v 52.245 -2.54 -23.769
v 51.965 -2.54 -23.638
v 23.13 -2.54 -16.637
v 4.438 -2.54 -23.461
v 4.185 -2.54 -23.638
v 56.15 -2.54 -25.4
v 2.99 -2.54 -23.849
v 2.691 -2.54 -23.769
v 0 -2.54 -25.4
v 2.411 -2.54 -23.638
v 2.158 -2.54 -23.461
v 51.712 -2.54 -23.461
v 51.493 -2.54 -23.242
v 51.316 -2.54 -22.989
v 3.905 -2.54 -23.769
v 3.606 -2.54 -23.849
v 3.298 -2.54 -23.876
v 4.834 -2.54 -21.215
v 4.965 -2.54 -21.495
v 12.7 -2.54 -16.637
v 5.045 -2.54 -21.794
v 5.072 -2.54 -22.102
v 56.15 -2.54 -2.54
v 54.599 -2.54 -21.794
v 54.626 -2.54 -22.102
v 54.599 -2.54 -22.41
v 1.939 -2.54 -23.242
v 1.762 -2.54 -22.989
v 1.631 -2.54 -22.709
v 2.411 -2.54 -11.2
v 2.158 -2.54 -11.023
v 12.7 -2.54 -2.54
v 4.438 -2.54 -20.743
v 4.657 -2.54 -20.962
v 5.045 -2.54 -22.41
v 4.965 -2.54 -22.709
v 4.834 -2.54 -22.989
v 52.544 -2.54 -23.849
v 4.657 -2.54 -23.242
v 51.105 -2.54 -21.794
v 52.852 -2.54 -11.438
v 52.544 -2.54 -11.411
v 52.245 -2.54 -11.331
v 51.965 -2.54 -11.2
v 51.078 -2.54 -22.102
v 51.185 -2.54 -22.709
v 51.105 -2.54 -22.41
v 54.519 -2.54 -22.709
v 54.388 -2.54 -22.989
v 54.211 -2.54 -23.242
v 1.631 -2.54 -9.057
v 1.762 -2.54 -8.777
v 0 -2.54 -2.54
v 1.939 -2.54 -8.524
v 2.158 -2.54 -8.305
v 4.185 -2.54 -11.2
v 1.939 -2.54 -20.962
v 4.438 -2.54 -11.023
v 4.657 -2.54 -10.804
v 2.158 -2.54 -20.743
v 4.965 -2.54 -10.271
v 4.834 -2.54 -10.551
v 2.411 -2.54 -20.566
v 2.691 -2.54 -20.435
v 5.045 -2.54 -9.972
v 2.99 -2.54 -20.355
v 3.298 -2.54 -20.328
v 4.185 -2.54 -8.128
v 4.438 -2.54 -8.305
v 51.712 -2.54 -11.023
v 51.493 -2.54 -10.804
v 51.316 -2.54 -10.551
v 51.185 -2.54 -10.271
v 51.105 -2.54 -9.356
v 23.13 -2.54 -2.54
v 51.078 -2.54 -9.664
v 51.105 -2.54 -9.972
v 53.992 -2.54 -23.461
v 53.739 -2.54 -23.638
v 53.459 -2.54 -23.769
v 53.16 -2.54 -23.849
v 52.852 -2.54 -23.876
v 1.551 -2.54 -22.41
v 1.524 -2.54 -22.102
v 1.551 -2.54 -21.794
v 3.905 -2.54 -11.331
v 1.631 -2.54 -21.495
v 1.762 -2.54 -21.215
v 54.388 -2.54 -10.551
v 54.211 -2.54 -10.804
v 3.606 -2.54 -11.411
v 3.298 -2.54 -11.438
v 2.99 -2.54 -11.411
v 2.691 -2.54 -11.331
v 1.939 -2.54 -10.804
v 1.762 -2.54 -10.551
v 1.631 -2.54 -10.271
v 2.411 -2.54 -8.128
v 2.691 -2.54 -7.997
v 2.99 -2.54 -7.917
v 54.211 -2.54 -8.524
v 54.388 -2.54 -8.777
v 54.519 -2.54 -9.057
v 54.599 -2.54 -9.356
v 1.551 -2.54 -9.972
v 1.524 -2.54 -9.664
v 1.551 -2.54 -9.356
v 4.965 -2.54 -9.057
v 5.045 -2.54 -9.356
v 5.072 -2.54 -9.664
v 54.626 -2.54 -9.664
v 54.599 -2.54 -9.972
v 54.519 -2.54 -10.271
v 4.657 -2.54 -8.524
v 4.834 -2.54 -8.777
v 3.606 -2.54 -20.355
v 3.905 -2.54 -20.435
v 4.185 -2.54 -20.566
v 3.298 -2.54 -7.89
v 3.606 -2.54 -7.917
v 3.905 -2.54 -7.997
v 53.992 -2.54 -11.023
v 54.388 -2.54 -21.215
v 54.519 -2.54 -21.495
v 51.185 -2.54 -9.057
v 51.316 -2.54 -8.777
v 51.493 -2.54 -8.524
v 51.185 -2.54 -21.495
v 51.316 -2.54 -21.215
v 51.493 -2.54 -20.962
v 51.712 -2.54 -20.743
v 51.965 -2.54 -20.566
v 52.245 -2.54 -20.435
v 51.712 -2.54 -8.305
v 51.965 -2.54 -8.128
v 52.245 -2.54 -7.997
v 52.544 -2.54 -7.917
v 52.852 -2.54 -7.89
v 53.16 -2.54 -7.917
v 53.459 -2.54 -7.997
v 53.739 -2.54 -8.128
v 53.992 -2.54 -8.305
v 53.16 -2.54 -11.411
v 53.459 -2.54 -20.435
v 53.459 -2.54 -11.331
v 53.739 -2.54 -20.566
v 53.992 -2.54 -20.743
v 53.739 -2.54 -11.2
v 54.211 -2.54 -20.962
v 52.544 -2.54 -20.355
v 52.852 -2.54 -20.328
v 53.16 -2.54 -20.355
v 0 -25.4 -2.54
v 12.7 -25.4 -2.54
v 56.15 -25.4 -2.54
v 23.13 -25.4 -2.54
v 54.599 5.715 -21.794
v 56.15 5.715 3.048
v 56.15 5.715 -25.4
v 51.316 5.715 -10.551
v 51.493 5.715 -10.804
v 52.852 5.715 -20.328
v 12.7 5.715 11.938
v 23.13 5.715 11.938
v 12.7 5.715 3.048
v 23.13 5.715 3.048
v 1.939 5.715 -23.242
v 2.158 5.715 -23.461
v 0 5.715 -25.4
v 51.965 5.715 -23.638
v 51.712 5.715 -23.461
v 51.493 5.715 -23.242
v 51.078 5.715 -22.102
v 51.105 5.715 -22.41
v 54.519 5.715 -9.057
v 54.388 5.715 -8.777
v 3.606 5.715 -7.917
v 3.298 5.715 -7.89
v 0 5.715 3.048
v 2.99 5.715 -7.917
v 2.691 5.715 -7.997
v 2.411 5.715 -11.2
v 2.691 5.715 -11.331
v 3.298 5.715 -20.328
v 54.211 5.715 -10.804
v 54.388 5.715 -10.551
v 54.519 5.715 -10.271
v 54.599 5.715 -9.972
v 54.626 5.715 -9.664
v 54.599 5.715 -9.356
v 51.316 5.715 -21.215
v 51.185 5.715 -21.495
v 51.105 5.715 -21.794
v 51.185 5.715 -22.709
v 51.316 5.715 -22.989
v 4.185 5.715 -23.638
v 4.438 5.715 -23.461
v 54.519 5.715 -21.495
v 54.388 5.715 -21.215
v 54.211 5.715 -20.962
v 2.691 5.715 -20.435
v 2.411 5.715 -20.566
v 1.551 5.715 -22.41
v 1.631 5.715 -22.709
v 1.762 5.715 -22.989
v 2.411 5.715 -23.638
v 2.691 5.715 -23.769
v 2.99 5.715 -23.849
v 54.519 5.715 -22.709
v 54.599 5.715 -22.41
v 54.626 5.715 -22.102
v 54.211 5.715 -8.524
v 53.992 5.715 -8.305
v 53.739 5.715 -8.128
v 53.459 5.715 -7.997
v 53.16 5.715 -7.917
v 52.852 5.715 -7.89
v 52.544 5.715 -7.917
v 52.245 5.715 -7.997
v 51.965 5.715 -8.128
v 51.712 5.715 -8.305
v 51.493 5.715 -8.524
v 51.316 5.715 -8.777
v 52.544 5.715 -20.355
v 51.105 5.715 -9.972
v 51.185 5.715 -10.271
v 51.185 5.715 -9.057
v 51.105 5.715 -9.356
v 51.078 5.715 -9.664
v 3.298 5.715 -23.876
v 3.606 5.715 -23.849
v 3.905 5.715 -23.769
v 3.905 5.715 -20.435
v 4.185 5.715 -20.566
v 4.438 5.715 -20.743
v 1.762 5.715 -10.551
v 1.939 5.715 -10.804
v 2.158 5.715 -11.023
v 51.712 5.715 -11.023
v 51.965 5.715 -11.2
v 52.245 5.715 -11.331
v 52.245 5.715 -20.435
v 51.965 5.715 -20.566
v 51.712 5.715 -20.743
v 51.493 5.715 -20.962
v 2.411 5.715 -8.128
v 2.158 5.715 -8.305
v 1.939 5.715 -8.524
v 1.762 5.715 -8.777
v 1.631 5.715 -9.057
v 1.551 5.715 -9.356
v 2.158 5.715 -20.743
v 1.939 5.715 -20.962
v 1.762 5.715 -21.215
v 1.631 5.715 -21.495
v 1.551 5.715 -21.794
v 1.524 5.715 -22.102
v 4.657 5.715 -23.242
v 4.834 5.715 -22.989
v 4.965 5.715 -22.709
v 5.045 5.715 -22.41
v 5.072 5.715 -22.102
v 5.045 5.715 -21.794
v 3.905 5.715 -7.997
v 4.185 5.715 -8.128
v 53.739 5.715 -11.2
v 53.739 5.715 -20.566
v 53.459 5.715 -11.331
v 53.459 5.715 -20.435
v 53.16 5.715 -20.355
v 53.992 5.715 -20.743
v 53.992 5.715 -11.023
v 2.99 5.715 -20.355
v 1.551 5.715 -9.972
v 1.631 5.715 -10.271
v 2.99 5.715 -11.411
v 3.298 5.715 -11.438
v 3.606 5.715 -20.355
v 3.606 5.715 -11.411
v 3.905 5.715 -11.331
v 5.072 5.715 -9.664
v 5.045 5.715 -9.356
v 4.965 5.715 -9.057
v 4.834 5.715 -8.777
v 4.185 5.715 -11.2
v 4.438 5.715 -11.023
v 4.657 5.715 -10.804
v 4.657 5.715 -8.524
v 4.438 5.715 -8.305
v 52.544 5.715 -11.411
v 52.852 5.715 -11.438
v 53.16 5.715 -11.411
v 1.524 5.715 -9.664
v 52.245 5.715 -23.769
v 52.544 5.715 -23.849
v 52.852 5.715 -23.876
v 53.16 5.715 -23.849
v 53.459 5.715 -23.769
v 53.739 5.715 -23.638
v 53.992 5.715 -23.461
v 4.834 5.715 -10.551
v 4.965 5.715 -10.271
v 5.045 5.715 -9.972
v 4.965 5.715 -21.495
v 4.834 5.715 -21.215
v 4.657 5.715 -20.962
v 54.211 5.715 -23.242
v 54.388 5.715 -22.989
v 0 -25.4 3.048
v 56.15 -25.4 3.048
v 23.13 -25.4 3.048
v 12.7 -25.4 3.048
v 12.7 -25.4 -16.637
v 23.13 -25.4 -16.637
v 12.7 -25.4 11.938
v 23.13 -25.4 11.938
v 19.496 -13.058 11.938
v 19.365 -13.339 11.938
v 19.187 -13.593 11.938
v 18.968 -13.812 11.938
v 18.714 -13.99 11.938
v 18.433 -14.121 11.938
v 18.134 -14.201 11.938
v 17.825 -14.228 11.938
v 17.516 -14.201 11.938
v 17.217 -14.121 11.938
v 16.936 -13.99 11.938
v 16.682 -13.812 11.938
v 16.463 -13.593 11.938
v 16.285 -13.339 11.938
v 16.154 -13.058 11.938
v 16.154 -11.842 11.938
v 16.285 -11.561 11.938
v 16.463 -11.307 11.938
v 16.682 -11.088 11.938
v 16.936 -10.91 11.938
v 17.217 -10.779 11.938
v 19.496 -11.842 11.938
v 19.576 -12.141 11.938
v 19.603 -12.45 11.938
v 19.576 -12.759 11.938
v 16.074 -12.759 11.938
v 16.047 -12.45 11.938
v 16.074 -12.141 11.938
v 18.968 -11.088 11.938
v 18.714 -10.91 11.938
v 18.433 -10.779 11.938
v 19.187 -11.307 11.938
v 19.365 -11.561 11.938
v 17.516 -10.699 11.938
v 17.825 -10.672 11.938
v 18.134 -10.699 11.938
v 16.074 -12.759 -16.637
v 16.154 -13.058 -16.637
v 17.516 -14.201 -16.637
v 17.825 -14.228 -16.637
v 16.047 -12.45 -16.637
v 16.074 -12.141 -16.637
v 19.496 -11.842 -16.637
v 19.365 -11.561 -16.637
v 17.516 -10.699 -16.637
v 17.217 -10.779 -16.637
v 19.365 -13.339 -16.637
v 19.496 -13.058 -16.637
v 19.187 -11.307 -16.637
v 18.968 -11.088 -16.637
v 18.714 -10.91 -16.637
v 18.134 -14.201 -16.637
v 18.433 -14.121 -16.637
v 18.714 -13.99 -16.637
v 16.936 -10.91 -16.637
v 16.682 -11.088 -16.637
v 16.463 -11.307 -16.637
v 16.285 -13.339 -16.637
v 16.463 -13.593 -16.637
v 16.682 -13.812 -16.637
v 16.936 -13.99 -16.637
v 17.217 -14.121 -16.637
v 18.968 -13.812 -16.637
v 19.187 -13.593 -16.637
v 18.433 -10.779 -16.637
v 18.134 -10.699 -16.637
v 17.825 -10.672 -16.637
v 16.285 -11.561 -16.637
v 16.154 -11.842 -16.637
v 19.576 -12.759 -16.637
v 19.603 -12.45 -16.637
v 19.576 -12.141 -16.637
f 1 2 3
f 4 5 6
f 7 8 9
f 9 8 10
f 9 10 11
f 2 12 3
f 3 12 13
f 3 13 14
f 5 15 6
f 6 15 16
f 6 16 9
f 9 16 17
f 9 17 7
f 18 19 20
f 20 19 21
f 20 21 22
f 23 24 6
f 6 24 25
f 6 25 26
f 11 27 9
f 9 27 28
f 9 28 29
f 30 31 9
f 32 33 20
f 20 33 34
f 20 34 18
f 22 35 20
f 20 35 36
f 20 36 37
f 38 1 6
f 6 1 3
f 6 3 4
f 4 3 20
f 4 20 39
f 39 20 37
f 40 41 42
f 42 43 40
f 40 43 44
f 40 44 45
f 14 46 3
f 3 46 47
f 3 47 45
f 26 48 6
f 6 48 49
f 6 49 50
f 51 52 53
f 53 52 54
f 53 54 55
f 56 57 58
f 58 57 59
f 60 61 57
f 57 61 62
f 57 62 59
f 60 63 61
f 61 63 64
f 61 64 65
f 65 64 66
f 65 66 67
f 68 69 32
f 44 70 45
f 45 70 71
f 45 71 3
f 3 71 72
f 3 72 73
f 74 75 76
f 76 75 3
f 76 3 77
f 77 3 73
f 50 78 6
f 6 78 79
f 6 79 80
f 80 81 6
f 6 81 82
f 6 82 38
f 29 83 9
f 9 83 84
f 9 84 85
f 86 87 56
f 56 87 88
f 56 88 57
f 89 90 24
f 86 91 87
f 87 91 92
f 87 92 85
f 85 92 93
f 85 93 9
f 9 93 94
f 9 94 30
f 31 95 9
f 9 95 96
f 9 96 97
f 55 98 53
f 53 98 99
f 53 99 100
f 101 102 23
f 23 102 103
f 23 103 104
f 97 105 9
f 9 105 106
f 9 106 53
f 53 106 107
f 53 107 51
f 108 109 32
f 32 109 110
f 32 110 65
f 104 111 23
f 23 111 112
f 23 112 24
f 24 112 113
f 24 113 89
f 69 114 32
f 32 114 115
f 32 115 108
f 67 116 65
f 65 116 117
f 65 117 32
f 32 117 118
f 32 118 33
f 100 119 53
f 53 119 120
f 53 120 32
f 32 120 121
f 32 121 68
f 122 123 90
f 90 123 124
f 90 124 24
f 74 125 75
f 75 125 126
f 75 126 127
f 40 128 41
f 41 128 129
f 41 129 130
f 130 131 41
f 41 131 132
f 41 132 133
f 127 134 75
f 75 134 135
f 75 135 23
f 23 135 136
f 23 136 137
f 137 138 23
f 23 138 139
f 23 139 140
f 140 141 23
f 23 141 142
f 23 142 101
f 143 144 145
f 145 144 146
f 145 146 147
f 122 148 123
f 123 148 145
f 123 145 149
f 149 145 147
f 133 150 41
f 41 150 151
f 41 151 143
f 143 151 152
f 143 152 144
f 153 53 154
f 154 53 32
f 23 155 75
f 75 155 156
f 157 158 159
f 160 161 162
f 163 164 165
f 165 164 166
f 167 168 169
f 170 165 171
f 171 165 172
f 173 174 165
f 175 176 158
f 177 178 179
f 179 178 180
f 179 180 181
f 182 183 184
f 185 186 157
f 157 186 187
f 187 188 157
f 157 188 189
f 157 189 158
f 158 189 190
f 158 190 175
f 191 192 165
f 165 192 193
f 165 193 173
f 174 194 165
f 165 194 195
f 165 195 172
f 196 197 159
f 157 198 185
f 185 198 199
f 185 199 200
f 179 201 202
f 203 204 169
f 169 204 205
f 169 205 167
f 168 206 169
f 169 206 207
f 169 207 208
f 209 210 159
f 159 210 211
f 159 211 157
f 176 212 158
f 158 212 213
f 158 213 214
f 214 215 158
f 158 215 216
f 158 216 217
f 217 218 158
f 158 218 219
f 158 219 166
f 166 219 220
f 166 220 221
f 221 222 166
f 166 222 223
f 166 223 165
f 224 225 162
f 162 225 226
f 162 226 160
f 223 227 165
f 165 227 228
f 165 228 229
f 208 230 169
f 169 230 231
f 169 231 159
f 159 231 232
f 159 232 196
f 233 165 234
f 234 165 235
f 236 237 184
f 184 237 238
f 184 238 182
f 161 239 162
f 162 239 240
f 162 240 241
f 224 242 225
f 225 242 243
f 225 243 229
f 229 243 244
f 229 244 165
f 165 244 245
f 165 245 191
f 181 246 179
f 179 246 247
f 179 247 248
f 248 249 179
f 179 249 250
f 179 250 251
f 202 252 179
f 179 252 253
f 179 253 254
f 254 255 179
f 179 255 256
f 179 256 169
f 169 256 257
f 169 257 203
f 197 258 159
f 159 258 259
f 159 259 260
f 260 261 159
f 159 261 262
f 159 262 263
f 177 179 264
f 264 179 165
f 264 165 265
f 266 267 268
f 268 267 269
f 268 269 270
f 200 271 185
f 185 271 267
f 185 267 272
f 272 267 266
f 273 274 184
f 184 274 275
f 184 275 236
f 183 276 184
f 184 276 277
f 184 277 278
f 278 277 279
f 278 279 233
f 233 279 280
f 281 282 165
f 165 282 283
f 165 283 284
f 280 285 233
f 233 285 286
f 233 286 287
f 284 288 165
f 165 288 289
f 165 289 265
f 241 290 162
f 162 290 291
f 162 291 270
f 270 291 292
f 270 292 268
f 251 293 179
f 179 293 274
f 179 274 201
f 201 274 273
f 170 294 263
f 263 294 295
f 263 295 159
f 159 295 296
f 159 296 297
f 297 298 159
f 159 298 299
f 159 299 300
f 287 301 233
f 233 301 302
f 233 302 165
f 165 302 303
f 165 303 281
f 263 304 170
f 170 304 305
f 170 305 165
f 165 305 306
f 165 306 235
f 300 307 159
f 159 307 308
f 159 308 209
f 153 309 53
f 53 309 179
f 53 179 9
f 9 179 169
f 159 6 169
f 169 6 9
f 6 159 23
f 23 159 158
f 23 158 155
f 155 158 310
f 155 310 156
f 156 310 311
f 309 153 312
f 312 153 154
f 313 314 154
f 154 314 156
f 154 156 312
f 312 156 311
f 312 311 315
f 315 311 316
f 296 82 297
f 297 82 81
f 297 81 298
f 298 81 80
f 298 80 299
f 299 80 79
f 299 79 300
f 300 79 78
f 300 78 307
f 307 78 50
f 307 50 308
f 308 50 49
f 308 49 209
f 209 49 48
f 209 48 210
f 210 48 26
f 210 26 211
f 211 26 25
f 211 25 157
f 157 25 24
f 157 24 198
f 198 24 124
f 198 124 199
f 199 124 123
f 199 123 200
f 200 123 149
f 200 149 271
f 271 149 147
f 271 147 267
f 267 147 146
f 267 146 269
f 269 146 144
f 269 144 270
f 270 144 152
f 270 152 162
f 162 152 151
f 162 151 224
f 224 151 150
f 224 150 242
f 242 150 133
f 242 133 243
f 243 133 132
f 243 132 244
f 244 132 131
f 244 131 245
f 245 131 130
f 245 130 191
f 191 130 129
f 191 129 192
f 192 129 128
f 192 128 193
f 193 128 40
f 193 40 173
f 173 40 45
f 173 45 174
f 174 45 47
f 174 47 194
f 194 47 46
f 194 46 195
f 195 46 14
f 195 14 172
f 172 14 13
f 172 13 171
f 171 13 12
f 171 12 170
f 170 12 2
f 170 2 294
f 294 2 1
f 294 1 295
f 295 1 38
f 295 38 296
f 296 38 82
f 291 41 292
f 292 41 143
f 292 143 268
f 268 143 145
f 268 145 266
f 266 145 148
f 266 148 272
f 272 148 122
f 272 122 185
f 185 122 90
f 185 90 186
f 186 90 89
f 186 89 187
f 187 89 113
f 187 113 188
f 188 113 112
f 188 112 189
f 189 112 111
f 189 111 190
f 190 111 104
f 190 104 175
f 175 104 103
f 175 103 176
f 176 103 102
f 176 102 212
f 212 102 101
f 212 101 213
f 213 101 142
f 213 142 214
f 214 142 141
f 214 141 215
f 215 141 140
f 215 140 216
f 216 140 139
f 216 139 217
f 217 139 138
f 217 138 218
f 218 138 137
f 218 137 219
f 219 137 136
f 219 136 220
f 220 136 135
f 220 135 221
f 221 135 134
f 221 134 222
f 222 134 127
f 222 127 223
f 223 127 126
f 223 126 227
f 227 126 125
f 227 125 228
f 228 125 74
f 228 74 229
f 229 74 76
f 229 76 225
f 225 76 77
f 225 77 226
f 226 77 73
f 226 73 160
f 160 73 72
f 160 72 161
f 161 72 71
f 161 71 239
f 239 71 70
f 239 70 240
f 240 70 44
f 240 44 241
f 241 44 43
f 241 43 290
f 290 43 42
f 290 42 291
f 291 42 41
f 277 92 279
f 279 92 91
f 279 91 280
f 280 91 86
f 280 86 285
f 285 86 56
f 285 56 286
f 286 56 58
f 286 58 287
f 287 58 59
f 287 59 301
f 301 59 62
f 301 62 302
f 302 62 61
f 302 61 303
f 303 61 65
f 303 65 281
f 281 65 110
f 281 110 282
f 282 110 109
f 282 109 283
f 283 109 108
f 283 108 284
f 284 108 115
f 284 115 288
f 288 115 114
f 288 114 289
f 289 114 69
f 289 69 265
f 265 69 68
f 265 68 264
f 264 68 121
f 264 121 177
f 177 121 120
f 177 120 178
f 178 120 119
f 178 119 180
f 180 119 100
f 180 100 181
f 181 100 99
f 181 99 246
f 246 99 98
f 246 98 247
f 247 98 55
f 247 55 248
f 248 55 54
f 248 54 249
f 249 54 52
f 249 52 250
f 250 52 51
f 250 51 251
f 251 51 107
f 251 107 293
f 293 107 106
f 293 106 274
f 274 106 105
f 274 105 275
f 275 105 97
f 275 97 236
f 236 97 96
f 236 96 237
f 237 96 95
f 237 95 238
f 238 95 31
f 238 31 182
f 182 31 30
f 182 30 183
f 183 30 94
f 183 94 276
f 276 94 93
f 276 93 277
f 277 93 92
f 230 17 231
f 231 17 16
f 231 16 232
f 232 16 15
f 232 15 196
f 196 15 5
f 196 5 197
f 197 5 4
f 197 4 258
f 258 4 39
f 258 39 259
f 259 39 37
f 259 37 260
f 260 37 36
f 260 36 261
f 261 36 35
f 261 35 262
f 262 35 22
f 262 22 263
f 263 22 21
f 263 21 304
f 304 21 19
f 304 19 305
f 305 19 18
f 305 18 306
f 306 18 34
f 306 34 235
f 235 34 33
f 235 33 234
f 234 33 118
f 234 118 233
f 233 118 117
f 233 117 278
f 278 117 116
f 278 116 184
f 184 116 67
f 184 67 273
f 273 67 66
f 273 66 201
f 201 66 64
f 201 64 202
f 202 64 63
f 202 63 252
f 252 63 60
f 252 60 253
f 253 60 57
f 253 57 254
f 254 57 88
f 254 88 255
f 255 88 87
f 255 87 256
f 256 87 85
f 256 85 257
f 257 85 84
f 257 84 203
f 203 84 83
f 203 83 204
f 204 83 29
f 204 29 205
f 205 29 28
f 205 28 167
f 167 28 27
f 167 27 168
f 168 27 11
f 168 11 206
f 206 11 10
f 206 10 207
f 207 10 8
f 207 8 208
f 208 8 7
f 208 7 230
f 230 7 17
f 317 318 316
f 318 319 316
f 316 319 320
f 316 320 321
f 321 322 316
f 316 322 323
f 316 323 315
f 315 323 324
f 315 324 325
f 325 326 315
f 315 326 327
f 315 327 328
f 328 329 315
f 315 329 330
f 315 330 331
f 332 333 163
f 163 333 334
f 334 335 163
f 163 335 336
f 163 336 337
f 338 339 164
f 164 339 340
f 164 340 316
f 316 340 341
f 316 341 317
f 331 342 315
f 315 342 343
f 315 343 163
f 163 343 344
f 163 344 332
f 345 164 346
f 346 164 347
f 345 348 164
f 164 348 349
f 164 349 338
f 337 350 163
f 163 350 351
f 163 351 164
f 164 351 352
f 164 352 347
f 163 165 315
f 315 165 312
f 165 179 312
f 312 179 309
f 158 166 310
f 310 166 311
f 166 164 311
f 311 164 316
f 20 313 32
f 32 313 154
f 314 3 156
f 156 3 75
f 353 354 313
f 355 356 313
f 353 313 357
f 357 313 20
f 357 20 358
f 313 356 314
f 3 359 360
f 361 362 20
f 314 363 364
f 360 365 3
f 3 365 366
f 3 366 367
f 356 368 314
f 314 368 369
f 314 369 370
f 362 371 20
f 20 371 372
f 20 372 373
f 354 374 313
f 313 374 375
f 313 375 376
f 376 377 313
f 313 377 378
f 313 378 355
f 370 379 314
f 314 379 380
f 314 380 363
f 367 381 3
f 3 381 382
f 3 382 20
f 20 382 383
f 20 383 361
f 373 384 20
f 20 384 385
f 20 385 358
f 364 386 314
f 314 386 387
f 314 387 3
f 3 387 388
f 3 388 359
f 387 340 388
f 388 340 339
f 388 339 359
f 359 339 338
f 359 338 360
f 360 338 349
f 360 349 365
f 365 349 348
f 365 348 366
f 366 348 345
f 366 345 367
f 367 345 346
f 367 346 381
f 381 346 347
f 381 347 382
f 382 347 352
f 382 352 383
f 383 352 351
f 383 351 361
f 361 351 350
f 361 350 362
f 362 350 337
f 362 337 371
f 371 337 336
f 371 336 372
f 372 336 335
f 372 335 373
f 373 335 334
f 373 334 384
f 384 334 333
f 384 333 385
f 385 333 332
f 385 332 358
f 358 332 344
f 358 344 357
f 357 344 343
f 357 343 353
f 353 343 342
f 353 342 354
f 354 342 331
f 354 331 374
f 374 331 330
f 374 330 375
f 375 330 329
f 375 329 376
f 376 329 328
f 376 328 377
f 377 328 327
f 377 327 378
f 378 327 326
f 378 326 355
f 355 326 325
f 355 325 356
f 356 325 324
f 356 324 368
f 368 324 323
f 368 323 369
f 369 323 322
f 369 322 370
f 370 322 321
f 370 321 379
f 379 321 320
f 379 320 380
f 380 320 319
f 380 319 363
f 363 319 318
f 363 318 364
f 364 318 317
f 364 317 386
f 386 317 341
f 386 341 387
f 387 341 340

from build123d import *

# Parameters (mm, degrees)
SKETCH1_W           = 56.15
SKETCH1_H           = 25.4
BOSS_EXTRUDE1_DEPTH = 2.54
SKETCH2_W           = 56.15
SKETCH2_H           = 25.4
BOSS_EXTRUDE2_DEPTH = 2.54
SKETCH11_W          = 56.15
SKETCH11_H          = 25.4
BOSS_EXTRUDE3_DEPTH = 5.715
SKETCH6_R           = 1.774
CUT_EXTRUDE3_DEPTH  = 9.255
SKETCH13_W          = 56.15
SKETCH13_H          = 31.115
BOSS_EXTRUDE4_DEPTH = 11.938
SKETCH14_W          = 12.7
SKETCH14_H          = 8.89
SKETCH14_W_2        = 33.02
CUT_EXTRUDE4_DEPTH  = 32.115
SKETCH17_W          = 10.43
SKETCH17_H          = 22.86
BOSS_EXTRUDE5_DEPTH = 14.097
SKETCH15_R          = 1.778
CUT_EXTRUDE5_DEPTH  = 38.338


with BuildPart() as part:
    # Sketch1 → Boss-Extrude1 (new body)
    with BuildSketch(Plane(origin=(0, 0, 0), x_dir=(1, 0, 0), z_dir=(0, 1, 0))):
        with Locations((28.075, 12.7)):
            Rectangle(SKETCH1_W, SKETCH1_H)
    extrude(amount=-BOSS_EXTRUDE1_DEPTH)

    # Sketch2 → Boss-Extrude2 (add)
    with BuildSketch(Plane.XY):
        with Locations((28.075, -12.7)):
            Rectangle(SKETCH2_W, SKETCH2_H)
    extrude(amount=-BOSS_EXTRUDE2_DEPTH)

    # Sketch11 → Boss-Extrude3 (add)
    with BuildSketch(Plane(origin=(0, 0, 0), x_dir=(1, 0, 0), z_dir=(0, 1, 0))):
        with Locations((28.075, 12.7)):
            Rectangle(SKETCH11_W, SKETCH11_H)
    extrude(amount=BOSS_EXTRUDE3_DEPTH)

    # Sketch6 → Cut-Extrude3 (cut, through all)
    with BuildSketch(Plane.XZ.offset(2.54)):
        with Locations((52.852, -22.102)):
            Circle(SKETCH6_R)
        with Locations((52.852, -9.664)):
            Circle(SKETCH6_R)
        with Locations((3.298, -9.664)):
            Circle(SKETCH6_R)
        with Locations((3.298, -22.102)):
            Circle(SKETCH6_R)
    extrude(amount=-CUT_EXTRUDE3_DEPTH, mode=Mode.SUBTRACT)

    # Sketch13 → Boss-Extrude4 (add)
    with BuildSketch(Plane.XY):
        with Locations((28.075, -9.8425)):
            Rectangle(SKETCH13_W, SKETCH13_H)
    extrude(amount=BOSS_EXTRUDE4_DEPTH)

    # Sketch14 → Cut-Extrude4 (cut, through all)
    with BuildSketch(Plane.XZ.offset(25.4)):
        with Locations((6.35, 7.493)):
            Rectangle(SKETCH14_W, SKETCH14_H)
        with Locations((39.64, 7.493)):
            Rectangle(SKETCH14_W_2, SKETCH14_H)
    extrude(amount=-CUT_EXTRUDE4_DEPTH, mode=Mode.SUBTRACT)

    # Sketch17 → Boss-Extrude5 (add)
    with BuildSketch(Plane(origin=(0, 0, -2.54), x_dir=(-1, 0, 0), z_dir=(0, 0, -1))):
        with Locations((-17.915, -13.97)):
            Rectangle(SKETCH17_W, SKETCH17_H)
    extrude(amount=BOSS_EXTRUDE5_DEPTH)

    # Sketch15 → Cut-Extrude5 (cut, through all)
    with BuildSketch(Plane.XY.offset(11.938)):
        with Locations((17.825, -12.45)):
            Circle(SKETCH15_R)
    extrude(amount=-CUT_EXTRUDE5_DEPTH, mode=Mode.SUBTRACT)


solid = part.part
